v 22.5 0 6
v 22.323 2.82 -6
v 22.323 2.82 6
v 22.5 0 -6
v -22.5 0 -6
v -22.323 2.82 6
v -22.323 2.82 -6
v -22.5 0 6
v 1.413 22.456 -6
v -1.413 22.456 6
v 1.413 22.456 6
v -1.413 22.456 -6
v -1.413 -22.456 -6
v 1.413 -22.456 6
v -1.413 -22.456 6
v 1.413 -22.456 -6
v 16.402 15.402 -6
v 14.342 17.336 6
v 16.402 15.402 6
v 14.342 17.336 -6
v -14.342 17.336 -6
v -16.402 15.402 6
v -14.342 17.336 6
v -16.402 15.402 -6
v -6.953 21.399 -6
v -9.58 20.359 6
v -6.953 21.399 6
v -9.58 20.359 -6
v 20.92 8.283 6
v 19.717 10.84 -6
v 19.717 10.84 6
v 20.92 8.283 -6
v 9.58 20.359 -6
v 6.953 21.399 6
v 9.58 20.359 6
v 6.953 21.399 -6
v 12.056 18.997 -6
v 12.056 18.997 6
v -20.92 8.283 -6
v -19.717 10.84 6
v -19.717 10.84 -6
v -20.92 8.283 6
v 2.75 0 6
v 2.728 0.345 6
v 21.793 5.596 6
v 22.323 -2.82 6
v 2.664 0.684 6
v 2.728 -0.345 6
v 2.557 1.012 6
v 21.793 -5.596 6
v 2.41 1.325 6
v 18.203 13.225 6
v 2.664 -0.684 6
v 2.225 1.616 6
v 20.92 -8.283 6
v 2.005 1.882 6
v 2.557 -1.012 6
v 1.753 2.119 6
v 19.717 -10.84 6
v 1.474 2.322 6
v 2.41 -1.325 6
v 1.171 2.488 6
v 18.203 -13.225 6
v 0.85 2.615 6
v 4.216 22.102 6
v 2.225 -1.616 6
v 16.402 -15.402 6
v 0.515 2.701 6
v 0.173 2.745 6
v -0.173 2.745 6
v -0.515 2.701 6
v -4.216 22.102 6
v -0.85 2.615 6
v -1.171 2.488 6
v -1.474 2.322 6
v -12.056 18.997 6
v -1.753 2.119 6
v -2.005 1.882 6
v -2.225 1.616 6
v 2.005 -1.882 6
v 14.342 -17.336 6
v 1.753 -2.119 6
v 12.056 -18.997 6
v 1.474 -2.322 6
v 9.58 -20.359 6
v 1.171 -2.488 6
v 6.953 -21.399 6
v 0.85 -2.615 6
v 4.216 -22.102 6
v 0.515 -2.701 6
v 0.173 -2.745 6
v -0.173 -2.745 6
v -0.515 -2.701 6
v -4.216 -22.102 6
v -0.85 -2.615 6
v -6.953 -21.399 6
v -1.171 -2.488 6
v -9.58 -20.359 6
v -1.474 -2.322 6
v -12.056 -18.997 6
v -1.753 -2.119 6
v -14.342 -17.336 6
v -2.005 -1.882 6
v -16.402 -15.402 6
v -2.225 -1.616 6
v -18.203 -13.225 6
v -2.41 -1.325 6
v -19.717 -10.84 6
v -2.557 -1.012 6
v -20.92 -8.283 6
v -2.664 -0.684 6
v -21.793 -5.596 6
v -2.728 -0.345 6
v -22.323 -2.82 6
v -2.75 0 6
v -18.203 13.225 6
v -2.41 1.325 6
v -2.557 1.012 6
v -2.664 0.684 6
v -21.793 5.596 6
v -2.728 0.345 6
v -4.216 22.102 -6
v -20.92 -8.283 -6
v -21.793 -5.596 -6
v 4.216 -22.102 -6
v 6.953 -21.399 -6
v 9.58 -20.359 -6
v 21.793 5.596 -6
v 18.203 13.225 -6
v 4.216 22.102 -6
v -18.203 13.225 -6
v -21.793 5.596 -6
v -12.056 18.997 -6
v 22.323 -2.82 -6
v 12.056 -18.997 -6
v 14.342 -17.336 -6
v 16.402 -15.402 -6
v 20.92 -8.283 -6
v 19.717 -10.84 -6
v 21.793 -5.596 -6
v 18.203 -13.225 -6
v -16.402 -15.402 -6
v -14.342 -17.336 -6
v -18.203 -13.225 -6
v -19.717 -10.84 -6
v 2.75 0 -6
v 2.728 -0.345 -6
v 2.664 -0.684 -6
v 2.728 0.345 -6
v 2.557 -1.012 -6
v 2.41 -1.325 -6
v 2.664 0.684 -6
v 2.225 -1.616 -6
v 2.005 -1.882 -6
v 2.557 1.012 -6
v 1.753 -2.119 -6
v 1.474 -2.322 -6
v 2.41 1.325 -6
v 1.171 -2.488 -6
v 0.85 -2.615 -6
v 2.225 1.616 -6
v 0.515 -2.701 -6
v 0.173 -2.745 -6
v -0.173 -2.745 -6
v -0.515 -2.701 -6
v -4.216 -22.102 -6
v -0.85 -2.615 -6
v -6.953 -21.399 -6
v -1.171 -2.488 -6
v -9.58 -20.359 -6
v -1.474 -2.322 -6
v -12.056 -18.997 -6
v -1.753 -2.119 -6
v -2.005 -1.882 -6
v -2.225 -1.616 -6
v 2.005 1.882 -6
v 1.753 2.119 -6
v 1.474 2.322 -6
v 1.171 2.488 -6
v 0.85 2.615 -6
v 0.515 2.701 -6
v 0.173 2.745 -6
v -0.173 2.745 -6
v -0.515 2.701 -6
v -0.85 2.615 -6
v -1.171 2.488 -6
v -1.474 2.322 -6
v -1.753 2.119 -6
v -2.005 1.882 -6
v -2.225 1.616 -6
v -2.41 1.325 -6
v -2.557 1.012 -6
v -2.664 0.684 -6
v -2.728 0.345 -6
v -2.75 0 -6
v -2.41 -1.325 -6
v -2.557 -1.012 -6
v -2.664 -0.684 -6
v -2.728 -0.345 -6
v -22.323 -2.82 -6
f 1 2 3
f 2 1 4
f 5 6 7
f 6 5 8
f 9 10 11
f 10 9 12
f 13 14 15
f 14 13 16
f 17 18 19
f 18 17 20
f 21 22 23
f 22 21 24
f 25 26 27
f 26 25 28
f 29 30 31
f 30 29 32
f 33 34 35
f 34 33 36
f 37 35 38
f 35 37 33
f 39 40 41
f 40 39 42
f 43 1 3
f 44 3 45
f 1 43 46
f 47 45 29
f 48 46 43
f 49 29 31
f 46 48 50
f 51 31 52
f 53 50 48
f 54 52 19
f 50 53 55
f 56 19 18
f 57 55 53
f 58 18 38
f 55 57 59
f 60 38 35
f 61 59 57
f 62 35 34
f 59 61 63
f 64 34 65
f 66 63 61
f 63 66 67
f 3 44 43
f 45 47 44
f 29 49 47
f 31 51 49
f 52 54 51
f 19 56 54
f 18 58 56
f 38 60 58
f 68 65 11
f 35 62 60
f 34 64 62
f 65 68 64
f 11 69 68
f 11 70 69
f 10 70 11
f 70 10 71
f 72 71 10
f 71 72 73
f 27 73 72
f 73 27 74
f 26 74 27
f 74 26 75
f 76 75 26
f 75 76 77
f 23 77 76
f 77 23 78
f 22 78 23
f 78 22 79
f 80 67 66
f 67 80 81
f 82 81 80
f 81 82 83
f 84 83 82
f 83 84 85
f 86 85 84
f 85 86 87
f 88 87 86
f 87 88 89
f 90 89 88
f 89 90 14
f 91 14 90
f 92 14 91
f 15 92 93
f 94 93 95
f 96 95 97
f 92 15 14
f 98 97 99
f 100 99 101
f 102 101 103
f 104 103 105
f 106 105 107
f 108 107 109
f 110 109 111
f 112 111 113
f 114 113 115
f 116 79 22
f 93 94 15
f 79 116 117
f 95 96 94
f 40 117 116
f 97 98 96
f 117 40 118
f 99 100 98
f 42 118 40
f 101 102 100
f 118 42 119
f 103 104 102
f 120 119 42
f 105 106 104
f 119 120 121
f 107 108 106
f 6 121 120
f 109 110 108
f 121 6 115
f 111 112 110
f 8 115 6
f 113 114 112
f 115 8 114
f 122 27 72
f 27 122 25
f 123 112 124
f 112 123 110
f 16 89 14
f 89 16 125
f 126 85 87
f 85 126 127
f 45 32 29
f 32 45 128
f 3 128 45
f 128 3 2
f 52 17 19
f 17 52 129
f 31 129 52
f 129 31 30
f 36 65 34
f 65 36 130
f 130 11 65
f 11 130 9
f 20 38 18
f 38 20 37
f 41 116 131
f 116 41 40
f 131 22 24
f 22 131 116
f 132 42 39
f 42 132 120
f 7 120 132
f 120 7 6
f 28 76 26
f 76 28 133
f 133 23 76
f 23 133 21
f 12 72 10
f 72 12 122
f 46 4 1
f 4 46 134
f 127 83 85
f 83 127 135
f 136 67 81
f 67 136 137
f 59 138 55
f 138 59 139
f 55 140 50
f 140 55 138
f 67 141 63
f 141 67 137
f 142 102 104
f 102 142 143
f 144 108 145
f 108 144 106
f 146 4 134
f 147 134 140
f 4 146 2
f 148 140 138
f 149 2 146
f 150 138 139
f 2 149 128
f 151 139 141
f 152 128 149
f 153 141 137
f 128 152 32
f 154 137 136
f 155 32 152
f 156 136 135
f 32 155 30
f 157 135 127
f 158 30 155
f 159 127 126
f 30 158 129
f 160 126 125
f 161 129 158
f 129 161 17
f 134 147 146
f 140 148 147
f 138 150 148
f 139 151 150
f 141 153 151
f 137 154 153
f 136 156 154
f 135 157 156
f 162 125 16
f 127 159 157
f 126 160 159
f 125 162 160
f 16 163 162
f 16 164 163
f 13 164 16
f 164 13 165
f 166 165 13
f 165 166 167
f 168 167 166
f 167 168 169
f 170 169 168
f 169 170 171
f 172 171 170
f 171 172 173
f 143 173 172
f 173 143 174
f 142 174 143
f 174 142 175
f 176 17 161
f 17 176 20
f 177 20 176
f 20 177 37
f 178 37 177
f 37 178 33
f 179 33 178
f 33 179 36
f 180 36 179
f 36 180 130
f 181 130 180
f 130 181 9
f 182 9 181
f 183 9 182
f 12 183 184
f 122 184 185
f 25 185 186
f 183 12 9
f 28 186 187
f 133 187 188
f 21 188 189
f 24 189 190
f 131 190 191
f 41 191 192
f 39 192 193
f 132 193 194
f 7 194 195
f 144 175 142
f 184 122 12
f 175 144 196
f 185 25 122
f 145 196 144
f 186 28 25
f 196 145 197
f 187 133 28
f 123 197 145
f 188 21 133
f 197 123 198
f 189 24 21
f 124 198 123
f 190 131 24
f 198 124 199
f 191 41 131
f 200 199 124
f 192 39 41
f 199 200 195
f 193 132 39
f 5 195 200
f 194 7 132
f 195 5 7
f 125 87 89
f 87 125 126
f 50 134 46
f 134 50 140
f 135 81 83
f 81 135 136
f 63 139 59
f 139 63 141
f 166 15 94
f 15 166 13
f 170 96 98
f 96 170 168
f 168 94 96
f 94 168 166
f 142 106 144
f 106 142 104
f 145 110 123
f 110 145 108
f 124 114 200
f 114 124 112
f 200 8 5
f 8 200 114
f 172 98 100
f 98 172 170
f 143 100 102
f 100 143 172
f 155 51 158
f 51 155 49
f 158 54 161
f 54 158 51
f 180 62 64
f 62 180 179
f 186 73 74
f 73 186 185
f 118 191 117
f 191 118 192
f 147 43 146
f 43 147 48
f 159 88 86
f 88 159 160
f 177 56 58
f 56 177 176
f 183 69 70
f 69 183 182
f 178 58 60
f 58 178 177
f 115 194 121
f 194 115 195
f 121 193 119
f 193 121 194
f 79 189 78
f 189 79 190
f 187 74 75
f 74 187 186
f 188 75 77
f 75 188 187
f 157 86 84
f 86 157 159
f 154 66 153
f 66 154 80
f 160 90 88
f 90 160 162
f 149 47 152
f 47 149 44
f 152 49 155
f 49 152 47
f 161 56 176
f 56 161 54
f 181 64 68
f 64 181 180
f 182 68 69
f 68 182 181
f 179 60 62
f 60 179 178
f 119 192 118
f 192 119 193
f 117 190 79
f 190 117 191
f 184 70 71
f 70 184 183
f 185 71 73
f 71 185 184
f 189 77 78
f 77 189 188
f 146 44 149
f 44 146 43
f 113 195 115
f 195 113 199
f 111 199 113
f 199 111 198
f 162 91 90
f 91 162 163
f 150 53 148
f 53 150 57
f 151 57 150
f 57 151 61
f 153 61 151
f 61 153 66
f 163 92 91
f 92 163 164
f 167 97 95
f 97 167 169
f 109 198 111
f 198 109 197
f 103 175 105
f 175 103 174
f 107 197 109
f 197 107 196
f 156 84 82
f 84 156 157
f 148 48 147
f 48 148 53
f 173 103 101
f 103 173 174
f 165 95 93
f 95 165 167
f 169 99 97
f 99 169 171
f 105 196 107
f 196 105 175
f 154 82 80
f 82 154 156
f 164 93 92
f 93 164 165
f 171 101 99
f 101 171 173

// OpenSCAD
$fn = 50;


difference() {
	union() {
		translate(v = [0, 0, -6.0000000000]) {
			cylinder(h = 12, r = 22.5000000000);
		}
	}
	union() {
		translate(v = [0, 0, -100.0000000000]) {
			cylinder(h = 200, r = 2.7500000000);
		}
	}
}
